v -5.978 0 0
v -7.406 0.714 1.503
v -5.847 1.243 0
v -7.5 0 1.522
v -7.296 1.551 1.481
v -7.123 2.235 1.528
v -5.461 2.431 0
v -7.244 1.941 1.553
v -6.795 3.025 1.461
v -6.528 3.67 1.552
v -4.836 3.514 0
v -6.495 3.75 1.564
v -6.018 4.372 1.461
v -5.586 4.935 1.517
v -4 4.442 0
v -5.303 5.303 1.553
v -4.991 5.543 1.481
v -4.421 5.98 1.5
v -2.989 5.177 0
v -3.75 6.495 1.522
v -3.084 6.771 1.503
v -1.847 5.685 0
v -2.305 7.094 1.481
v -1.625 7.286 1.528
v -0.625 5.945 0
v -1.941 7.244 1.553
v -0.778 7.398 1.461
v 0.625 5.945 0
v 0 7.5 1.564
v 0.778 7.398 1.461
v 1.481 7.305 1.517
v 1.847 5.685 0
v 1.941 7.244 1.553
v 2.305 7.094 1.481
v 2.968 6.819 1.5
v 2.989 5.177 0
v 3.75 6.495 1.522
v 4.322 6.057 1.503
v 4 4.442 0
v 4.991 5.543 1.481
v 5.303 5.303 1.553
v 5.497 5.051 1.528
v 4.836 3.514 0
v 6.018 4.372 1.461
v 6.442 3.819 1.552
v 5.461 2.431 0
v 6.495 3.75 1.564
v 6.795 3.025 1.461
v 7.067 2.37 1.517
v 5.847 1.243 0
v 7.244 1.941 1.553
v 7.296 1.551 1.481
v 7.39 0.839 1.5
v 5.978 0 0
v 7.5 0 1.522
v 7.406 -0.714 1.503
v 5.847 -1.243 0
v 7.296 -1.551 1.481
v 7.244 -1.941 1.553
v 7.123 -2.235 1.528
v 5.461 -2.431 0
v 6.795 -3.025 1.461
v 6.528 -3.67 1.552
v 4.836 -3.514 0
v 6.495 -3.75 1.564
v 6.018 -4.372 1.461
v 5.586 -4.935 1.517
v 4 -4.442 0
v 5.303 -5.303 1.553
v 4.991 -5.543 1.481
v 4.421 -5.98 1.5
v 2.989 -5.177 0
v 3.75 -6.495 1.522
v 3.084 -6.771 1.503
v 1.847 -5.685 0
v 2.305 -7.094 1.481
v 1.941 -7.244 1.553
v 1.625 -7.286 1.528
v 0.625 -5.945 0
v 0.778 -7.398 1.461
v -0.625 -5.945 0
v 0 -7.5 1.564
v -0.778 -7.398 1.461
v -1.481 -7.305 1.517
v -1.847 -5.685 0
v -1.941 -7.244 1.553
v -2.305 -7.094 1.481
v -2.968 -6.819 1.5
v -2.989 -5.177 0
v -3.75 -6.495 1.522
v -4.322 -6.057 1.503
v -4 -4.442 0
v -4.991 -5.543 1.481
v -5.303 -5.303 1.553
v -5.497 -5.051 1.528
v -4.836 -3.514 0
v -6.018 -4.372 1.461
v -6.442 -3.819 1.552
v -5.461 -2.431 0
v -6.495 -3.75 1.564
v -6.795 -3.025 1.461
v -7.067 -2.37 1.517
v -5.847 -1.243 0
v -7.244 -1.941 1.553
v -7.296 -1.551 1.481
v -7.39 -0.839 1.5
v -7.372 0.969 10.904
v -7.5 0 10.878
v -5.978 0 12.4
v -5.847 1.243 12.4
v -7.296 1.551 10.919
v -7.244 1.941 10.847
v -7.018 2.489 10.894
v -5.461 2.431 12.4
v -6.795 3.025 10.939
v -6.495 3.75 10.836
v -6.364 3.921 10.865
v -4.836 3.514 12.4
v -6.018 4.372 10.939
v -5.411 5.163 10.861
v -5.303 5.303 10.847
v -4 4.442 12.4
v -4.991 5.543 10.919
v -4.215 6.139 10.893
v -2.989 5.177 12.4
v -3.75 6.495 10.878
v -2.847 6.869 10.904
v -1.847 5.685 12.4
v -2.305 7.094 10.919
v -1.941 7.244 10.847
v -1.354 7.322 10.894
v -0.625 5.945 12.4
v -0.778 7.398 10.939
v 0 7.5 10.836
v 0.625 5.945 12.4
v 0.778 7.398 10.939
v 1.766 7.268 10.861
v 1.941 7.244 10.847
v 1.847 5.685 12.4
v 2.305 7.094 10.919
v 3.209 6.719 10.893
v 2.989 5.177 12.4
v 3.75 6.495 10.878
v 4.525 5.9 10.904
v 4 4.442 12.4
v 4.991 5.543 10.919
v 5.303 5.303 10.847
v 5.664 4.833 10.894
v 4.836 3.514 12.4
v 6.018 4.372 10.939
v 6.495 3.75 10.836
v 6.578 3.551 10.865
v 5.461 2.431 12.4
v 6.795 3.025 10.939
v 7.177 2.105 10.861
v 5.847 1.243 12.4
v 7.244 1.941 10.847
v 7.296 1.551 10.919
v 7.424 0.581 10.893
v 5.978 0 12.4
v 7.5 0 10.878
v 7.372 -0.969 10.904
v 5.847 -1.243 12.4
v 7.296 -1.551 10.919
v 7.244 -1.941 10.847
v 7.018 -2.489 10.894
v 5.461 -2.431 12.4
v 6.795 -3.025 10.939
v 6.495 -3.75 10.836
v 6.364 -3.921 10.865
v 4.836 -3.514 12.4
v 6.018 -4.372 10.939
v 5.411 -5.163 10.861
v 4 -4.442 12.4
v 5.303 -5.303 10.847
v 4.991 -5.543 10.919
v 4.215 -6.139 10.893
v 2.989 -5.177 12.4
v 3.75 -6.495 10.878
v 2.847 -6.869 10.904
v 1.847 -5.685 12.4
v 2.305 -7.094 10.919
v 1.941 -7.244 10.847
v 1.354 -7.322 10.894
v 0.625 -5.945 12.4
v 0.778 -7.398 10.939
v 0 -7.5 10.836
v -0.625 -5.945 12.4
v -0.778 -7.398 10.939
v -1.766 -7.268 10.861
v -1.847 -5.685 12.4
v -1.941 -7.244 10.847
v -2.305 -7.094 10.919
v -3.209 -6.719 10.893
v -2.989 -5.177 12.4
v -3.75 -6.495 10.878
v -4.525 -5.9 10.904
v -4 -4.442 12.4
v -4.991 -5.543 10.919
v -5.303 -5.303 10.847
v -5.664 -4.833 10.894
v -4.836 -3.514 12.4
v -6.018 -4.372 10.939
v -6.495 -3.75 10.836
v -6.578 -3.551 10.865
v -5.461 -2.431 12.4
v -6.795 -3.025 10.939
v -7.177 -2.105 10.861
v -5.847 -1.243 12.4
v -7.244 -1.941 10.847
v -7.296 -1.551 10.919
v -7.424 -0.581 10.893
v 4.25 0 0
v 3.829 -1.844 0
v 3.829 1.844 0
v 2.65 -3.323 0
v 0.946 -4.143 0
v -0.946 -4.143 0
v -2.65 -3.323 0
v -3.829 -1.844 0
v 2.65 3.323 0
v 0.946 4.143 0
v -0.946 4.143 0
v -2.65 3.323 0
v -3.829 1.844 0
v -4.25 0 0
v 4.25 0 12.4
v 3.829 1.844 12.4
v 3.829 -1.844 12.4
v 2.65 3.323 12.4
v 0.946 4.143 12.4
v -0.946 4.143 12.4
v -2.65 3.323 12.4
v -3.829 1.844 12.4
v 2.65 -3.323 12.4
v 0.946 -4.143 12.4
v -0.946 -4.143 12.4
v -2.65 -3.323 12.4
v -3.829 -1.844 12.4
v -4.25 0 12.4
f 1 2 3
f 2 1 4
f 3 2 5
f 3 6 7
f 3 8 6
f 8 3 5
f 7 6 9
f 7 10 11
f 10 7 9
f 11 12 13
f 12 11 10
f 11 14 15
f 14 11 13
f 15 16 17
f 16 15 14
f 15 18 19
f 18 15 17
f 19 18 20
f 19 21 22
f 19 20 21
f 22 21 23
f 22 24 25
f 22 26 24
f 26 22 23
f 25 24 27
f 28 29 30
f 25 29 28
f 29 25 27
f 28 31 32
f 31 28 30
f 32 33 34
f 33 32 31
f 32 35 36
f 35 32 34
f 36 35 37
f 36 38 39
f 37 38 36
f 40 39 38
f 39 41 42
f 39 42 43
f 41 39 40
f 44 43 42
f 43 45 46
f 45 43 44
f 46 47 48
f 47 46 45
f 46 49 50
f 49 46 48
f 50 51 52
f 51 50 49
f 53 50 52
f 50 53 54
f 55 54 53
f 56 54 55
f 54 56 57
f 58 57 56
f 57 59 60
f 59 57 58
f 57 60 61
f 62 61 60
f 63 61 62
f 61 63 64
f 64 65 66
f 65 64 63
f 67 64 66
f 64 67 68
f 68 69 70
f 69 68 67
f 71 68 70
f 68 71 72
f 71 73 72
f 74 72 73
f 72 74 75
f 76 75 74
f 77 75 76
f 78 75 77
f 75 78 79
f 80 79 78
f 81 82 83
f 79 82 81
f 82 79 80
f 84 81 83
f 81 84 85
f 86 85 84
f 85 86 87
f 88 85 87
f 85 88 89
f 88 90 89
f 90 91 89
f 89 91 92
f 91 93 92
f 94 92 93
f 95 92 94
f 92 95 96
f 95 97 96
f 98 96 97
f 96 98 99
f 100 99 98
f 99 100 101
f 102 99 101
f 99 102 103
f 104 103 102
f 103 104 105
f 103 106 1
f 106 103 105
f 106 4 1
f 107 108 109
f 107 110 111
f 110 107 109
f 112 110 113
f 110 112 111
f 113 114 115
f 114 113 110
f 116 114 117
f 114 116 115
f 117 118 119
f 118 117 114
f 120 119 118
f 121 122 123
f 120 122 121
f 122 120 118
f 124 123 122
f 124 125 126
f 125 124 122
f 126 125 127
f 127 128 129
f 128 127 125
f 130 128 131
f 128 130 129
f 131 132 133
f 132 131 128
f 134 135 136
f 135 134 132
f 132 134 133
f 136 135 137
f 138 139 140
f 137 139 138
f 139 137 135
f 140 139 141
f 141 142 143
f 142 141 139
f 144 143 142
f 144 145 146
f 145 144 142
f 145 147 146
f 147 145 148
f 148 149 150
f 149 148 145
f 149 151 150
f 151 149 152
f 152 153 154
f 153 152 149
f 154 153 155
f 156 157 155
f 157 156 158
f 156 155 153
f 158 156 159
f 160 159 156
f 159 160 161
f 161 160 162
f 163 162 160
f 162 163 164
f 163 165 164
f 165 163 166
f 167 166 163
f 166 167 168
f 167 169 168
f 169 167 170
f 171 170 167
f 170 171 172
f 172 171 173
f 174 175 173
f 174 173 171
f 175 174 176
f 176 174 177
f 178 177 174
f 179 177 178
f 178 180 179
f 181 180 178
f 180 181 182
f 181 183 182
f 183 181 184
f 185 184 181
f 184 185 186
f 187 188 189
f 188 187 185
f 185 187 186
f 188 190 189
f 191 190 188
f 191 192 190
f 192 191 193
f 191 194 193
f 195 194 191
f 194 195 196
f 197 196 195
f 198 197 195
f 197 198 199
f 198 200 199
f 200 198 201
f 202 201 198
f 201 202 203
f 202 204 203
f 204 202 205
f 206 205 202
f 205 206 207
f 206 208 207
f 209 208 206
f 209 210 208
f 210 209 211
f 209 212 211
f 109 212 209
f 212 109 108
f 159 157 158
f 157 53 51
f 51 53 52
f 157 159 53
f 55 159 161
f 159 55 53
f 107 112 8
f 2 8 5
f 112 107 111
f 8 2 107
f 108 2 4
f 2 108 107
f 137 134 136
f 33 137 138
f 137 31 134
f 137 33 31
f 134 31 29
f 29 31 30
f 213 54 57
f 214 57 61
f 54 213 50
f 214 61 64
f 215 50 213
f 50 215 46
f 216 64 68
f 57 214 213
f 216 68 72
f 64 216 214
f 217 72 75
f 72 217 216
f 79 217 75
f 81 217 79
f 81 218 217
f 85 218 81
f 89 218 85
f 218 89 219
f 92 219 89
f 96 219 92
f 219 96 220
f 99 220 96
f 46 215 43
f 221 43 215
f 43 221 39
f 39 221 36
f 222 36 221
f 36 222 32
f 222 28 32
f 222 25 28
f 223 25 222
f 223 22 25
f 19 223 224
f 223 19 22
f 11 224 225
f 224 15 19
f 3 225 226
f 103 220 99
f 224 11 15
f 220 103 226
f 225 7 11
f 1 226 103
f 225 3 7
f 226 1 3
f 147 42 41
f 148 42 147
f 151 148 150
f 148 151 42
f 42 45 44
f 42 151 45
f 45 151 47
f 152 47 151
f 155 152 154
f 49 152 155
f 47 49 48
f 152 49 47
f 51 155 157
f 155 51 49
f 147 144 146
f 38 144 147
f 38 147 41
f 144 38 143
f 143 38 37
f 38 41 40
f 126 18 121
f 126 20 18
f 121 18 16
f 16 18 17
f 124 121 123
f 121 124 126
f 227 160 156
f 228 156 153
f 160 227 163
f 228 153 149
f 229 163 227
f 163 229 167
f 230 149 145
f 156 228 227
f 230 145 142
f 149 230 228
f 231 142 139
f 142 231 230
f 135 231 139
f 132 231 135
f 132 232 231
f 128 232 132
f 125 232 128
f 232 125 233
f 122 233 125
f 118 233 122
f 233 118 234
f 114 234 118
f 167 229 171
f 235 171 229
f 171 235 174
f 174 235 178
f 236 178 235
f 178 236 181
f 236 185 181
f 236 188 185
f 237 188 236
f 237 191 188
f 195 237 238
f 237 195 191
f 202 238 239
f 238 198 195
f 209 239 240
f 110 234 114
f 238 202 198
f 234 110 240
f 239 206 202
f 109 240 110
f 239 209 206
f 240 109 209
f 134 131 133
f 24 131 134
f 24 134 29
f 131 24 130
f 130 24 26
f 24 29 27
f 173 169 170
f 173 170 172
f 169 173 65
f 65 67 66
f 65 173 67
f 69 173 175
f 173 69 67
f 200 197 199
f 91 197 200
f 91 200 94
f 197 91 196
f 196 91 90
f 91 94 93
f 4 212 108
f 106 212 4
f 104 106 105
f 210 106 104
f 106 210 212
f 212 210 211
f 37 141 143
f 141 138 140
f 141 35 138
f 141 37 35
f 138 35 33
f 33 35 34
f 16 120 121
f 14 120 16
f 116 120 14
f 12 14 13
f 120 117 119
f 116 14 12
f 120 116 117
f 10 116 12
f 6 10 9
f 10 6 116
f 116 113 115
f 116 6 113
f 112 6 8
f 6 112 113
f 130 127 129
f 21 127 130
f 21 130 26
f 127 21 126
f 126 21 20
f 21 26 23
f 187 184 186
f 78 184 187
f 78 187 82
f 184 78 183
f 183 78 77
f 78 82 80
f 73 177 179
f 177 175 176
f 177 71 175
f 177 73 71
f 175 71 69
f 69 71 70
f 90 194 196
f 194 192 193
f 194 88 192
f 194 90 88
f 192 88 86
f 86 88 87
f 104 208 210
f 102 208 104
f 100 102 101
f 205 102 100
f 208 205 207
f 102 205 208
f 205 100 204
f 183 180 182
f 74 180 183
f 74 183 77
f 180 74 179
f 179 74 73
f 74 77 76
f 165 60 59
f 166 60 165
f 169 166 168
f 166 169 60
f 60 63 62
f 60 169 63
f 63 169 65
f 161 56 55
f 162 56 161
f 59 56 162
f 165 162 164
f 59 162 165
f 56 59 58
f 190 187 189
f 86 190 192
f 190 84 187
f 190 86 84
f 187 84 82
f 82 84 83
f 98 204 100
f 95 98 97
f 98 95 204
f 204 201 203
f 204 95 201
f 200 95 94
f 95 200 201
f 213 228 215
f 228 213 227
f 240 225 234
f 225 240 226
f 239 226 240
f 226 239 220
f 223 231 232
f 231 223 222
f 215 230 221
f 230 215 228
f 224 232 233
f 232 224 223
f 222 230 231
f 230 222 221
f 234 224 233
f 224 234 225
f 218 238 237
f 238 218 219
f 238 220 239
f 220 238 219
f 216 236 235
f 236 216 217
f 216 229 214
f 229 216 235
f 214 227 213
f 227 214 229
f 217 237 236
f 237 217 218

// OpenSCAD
// file: parameters.scad
// Parameters shared between modules
Base_th = 4;
Beam_width = 15;
Wiggle = 0.25;
Fat_beam_width = Beam_width + Wiggle;
Beam_length = 400;
Wall_th = 2.5;
Min_beam_width = 12.5;
Max_beam_width = 17.5;
Zip_th = 2;
Zip_h = Zip_th + Max_beam_width - Min_beam_width;
Zip_w = 5.0;
Nema17_cube_width          = 42.43;
Nema17_screw_hole_width    = 43.74; // Opposite corner screws
Nema17_ring_diameter       = 22;
Nema17_cube_height         = 39.36;
Nema17_shaft_height        = 63.65;
Nema17_ring_height         = 2;
Nema17_shaft_radius        = 5/2;
b608_outer_dia = 22.2;
b608_width = 7.05;
b608_bore_r = 4;
Gap_between_sandwich_and_plate = 1.5 + Base_th; // 1.5 mm for wiggle
Motor_bracket_flerp_r = 6;
Motor_bracket_flerp = 14;
Motor_bracket_cw = Nema17_cube_width + 6;
Motor_bracket_att_ang = 50;
Mounting_screw_d = 4.5;
Mounting_screw_head_d = 14;
Spool_outer_wall_th = 4;

// Corner clamp parameters
Cc_l1 = (Fat_beam_width+2*Wall_th)*2*sqrt(3);
Cc_rad_b = 4;
Cc_action_point_from_mid = Cc_l1/sqrt(3)-2*Cc_rad_b-1.3;  // 1.3 chosen arbitrarily
Cc_plastic_length = sqrt(Cc_action_point_from_mid*Cc_action_point_from_mid
                       - (Cc_action_point_from_mid/2)*(Cc_action_point_from_mid/2));

// The distance between the two action points on the mover
Sidelength = Beam_length + 2*Cc_plastic_length;

/////// Gear parameters ////////////
Circular_pitch = 262;
Motor_teeth = 10;
Gear_height = 21.4-3;
Motor_pitch                      = (Motor_teeth*Circular_pitch/360);
Motor_pitch_diametrial           = Motor_teeth/(2*Motor_pitch);
Motor_outer_radius               = Motor_pitch + 1/Motor_pitch_diametrial;
Spool_teeth = 100;
Spool_r = 65;
Spool_height = 8;
Spool_pitch                      = (Spool_teeth*Circular_pitch/360);
Spool_pitch_diametrial           = Spool_teeth/(2*Spool_pitch);
Spool_outer_radius               = Spool_pitch + 1/Spool_pitch_diametrial;
Sep_disc_radius = 161.83/2; // Made to match 255 teeth gt2 pulley
Motor_bracket_depth = Gear_height+1+7+Nema17_ring_height+1+Gap_between_sandwich_and_plate;
Spool_core_flerp0 = 16+3;

/////// Lineroller parameters ////////////
b623_width  = 4;
b623_bore_r = 3/2;
b623_vgroove_big_r = 12/2;
b623_vgroove_small_r = 10/2;
b623_outer_dia = 10;

Depth_of_roller_base = 18;
Roller_flerp = 6;
Roller_l = 42;
Roller_fl = (Roller_l - Depth_of_roller_base)/2;

Line_roller_wall_th = 5;

Line_roller_ABC_winch_h =  Gap_between_sandwich_and_plate
                           + Sep_disc_radius
                           - Spool_r
                           + Depth_of_roller_base/2
                           + b623_vgroove_small_r;


Ptfe_r = 2.1;
Roller_base_r = 8;
Screw_h = 2;
Screw_head_h = 2;
Spool_center_bearing_wall_th = 5;
Corner_clamp_bearings_center_to_center = 15;
Anchor_bearings_center_to_center = Corner_clamp_bearings_center_to_center + b623_outer_dia;

//// Lineroller anchor parameters /////

Bearing_wall = 1;
Bearing_0_x = 2*b623_vgroove_big_r+Bearing_wall+5.3;
Bearing_1_x = b623_vgroove_small_r-0.9;
Move_tower = -12.2;
Lower_bearing_z = 13;
Higher_bearing_z = Lower_bearing_z + Corner_clamp_bearings_center_to_center;

//// Cable Clamp parameters /////
Bit_width = 12;
Cable_r=2.5;


//// Donkey and encoder parameters /////

Donkey_shaft_d = 6;
Donkey_h = 65.12;
Donkey_body_d = 50;
Donkey_feet_th = 3.5;

Encoder_LDP3806_shaft_d = 6;
Encoder_LDP3806_d = 38;

// Belt drive parameters
GT2_belt_width = 6.5;
GT2_gear_height = GT2_belt_width + 2;
GT2_motor_gear_height = 16;
GT2_motor_gear_outer_dia = 16;
GT2_spool_gear_teeth = 255;
GT2_motor_gear_teeth = 20;
Torx_depth = GT2_gear_height/2;
Belt_roller_h = 47;

// Spacer parameters
Sandwich_ABC_width = 2*(1+Spool_height) + GT2_gear_height;
Sandwich_D_width = 3*(1+Spool_height) + GT2_gear_height;

Spacer_ABC_width = Sandwich_ABC_width - 2*b608_width;
Spacer_D_width = Sandwich_D_width -2*b608_width;


spd = Spool_height+GT2_gear_height;
// Horizontal_deflector_cube_y_size must be exact this number
// because we want to deflect AB-lines
// 60 degrees on the ceiling unit, and we want to put two
// deflectors in a row and get a distance between bearings
// that maintain the distance d when deflecting 60 degrees
Horizontal_deflector_cube_y_size = (2/sqrt(3))*spd;
// main file
include <parameters.scad>
use <util.scad>

spacer_ABC();
module spacer_ABC(){
  spacer(Spacer_ABC_width);
}
